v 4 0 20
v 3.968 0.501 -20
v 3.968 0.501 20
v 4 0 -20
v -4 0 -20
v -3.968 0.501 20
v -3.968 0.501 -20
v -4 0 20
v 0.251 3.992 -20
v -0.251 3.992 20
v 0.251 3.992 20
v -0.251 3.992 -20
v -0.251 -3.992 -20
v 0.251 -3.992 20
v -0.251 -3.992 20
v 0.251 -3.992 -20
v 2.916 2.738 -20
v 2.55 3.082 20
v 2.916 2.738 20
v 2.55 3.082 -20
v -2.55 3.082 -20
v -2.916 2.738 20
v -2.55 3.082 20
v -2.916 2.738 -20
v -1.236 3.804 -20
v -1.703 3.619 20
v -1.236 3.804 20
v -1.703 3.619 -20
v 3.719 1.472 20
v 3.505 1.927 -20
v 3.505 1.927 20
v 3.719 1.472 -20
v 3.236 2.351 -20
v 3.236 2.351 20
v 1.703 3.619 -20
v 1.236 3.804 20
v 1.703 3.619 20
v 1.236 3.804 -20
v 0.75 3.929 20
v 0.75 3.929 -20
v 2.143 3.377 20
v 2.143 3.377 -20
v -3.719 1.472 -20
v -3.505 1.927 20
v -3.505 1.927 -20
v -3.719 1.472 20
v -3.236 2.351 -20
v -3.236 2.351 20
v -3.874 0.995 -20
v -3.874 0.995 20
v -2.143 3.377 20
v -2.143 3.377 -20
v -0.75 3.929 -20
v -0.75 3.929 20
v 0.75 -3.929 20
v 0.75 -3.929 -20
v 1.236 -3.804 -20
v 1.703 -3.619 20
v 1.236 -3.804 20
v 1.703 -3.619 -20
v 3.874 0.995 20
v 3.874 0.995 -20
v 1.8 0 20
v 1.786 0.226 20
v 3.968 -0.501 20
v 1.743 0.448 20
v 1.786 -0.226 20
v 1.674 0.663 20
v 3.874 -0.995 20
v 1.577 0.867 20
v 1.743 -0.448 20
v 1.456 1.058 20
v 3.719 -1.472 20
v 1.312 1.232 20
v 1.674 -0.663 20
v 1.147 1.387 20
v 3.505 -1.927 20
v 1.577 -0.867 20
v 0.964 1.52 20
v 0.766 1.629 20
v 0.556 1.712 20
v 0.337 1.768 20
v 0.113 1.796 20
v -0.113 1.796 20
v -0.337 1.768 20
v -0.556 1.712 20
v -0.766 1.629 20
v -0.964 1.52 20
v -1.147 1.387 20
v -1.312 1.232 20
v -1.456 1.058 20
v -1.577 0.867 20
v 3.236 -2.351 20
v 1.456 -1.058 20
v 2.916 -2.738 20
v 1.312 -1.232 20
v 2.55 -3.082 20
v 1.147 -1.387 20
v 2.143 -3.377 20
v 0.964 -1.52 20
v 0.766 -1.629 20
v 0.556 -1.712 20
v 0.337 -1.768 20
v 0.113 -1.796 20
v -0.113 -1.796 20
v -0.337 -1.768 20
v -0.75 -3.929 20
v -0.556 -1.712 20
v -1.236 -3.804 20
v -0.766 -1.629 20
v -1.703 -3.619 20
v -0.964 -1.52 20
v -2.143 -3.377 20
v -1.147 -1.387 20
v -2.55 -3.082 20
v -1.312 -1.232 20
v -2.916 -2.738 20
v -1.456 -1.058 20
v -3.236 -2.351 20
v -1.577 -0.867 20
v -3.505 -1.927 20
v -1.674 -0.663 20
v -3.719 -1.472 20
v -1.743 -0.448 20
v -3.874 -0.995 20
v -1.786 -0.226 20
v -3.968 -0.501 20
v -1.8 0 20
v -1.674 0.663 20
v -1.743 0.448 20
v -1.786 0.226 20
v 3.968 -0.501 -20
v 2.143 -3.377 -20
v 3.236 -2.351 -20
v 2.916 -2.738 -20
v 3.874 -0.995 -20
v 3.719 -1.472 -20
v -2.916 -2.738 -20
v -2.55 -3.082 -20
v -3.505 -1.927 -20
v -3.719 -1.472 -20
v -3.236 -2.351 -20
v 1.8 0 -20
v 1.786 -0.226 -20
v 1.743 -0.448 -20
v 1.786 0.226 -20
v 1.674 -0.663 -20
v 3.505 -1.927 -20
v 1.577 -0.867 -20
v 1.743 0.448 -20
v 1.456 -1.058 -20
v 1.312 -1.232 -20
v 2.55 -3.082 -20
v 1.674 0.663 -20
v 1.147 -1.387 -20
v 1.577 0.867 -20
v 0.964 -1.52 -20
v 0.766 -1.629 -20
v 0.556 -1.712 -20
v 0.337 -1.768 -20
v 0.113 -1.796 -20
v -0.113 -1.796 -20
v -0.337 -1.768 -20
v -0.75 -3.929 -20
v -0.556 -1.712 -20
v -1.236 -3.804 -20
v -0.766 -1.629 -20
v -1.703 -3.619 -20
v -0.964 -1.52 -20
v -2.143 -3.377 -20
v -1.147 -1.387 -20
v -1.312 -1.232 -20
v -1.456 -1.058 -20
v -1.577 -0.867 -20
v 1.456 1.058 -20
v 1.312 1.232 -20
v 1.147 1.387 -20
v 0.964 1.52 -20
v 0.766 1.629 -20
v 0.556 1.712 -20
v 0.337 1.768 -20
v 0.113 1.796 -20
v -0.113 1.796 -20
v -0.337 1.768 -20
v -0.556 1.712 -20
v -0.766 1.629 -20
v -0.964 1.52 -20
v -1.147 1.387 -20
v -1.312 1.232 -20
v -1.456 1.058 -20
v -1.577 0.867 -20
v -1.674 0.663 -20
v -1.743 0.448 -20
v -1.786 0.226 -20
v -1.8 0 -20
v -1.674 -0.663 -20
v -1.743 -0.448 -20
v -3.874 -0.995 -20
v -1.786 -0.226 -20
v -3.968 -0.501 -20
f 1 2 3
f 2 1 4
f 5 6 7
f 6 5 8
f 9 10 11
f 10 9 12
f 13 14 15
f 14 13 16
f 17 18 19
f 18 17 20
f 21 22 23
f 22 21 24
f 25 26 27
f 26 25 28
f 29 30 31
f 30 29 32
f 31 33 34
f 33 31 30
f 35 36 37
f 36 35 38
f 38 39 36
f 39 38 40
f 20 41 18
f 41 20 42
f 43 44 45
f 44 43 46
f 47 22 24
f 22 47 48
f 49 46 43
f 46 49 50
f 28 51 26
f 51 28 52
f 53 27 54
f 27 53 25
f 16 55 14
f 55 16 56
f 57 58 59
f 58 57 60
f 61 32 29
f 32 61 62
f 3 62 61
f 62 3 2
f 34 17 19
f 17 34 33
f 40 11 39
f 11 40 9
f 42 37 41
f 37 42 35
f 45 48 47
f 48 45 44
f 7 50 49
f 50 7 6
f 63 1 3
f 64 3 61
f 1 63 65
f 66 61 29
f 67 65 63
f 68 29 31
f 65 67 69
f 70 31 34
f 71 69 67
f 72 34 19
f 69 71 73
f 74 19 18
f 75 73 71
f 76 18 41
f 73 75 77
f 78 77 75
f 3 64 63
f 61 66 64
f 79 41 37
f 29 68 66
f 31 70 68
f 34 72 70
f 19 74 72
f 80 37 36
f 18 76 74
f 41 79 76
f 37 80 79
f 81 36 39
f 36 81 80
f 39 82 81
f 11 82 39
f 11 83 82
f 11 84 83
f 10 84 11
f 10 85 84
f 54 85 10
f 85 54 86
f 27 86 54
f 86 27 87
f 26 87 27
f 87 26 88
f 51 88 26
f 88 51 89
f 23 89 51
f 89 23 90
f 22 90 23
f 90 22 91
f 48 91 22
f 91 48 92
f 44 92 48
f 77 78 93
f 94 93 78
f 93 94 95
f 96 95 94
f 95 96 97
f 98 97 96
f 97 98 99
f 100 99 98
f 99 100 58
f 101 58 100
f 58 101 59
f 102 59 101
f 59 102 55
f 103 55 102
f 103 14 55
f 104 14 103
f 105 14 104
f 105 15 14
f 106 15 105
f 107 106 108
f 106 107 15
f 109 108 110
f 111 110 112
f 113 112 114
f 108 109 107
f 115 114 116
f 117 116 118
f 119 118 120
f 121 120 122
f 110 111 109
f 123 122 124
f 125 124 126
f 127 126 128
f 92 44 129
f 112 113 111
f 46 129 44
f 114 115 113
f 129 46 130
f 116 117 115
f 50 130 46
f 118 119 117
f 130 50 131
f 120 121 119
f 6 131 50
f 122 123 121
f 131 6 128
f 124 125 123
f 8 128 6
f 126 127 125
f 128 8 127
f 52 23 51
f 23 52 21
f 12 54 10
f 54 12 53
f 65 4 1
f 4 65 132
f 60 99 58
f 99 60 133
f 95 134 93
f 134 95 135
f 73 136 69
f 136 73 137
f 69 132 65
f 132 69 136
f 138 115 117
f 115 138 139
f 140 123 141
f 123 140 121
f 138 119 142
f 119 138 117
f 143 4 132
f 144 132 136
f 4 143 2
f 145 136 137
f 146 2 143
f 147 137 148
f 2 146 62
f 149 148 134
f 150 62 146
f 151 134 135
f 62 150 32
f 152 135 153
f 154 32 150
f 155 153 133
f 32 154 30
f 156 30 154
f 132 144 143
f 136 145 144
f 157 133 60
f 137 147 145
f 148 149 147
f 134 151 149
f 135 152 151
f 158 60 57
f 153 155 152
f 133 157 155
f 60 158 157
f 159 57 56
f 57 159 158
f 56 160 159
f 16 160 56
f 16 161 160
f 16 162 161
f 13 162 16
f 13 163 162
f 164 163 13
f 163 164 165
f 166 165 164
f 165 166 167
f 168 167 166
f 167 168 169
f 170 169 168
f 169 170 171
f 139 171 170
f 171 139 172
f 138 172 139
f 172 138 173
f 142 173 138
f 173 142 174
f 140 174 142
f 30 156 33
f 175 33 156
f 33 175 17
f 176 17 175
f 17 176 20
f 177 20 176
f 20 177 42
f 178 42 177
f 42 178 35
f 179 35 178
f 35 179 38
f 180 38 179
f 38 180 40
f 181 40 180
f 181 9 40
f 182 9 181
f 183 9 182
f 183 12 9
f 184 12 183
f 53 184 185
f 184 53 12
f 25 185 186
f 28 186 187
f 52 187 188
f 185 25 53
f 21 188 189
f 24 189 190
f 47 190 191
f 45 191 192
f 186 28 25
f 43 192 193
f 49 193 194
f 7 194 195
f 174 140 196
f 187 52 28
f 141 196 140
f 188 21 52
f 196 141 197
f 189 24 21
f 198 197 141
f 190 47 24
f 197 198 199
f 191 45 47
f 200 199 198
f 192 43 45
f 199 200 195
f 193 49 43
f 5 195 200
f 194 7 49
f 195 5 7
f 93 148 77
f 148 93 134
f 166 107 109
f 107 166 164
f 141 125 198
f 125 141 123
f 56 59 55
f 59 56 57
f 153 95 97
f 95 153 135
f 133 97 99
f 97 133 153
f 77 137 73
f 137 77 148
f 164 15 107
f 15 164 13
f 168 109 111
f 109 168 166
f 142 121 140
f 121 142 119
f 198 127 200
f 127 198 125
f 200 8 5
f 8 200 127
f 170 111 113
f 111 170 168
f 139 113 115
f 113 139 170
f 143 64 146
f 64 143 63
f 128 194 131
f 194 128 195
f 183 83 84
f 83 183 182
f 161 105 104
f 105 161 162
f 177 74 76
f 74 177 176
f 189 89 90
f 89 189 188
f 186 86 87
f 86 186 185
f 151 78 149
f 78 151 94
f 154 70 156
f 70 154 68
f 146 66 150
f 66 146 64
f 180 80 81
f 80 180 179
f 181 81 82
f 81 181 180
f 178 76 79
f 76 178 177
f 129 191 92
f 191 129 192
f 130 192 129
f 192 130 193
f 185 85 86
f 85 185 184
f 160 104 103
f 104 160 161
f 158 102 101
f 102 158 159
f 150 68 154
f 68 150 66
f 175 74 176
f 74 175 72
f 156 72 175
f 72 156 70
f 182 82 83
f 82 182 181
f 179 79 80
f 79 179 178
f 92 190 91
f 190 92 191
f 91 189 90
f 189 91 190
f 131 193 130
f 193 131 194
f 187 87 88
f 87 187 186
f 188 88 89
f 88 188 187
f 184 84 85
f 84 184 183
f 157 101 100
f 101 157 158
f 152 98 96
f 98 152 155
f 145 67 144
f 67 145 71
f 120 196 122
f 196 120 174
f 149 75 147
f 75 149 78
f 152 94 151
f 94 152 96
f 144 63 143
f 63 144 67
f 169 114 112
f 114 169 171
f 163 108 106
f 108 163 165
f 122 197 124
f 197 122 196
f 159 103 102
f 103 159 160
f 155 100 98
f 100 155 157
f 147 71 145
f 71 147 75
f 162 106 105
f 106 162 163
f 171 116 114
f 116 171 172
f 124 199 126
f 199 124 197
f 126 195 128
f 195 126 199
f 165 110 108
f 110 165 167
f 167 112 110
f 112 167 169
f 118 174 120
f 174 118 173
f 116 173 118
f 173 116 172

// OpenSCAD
$fn = 50;


difference() {
	union() {
		translate(v = [0, 0, -20.0000000000]) {
			cylinder(h = 40, r = 4.0000000000);
		}
	}
	union() {
		translate(v = [0, 0, -100.0000000000]) {
			cylinder(h = 200, r = 1.8000000000);
		}
	}
}
